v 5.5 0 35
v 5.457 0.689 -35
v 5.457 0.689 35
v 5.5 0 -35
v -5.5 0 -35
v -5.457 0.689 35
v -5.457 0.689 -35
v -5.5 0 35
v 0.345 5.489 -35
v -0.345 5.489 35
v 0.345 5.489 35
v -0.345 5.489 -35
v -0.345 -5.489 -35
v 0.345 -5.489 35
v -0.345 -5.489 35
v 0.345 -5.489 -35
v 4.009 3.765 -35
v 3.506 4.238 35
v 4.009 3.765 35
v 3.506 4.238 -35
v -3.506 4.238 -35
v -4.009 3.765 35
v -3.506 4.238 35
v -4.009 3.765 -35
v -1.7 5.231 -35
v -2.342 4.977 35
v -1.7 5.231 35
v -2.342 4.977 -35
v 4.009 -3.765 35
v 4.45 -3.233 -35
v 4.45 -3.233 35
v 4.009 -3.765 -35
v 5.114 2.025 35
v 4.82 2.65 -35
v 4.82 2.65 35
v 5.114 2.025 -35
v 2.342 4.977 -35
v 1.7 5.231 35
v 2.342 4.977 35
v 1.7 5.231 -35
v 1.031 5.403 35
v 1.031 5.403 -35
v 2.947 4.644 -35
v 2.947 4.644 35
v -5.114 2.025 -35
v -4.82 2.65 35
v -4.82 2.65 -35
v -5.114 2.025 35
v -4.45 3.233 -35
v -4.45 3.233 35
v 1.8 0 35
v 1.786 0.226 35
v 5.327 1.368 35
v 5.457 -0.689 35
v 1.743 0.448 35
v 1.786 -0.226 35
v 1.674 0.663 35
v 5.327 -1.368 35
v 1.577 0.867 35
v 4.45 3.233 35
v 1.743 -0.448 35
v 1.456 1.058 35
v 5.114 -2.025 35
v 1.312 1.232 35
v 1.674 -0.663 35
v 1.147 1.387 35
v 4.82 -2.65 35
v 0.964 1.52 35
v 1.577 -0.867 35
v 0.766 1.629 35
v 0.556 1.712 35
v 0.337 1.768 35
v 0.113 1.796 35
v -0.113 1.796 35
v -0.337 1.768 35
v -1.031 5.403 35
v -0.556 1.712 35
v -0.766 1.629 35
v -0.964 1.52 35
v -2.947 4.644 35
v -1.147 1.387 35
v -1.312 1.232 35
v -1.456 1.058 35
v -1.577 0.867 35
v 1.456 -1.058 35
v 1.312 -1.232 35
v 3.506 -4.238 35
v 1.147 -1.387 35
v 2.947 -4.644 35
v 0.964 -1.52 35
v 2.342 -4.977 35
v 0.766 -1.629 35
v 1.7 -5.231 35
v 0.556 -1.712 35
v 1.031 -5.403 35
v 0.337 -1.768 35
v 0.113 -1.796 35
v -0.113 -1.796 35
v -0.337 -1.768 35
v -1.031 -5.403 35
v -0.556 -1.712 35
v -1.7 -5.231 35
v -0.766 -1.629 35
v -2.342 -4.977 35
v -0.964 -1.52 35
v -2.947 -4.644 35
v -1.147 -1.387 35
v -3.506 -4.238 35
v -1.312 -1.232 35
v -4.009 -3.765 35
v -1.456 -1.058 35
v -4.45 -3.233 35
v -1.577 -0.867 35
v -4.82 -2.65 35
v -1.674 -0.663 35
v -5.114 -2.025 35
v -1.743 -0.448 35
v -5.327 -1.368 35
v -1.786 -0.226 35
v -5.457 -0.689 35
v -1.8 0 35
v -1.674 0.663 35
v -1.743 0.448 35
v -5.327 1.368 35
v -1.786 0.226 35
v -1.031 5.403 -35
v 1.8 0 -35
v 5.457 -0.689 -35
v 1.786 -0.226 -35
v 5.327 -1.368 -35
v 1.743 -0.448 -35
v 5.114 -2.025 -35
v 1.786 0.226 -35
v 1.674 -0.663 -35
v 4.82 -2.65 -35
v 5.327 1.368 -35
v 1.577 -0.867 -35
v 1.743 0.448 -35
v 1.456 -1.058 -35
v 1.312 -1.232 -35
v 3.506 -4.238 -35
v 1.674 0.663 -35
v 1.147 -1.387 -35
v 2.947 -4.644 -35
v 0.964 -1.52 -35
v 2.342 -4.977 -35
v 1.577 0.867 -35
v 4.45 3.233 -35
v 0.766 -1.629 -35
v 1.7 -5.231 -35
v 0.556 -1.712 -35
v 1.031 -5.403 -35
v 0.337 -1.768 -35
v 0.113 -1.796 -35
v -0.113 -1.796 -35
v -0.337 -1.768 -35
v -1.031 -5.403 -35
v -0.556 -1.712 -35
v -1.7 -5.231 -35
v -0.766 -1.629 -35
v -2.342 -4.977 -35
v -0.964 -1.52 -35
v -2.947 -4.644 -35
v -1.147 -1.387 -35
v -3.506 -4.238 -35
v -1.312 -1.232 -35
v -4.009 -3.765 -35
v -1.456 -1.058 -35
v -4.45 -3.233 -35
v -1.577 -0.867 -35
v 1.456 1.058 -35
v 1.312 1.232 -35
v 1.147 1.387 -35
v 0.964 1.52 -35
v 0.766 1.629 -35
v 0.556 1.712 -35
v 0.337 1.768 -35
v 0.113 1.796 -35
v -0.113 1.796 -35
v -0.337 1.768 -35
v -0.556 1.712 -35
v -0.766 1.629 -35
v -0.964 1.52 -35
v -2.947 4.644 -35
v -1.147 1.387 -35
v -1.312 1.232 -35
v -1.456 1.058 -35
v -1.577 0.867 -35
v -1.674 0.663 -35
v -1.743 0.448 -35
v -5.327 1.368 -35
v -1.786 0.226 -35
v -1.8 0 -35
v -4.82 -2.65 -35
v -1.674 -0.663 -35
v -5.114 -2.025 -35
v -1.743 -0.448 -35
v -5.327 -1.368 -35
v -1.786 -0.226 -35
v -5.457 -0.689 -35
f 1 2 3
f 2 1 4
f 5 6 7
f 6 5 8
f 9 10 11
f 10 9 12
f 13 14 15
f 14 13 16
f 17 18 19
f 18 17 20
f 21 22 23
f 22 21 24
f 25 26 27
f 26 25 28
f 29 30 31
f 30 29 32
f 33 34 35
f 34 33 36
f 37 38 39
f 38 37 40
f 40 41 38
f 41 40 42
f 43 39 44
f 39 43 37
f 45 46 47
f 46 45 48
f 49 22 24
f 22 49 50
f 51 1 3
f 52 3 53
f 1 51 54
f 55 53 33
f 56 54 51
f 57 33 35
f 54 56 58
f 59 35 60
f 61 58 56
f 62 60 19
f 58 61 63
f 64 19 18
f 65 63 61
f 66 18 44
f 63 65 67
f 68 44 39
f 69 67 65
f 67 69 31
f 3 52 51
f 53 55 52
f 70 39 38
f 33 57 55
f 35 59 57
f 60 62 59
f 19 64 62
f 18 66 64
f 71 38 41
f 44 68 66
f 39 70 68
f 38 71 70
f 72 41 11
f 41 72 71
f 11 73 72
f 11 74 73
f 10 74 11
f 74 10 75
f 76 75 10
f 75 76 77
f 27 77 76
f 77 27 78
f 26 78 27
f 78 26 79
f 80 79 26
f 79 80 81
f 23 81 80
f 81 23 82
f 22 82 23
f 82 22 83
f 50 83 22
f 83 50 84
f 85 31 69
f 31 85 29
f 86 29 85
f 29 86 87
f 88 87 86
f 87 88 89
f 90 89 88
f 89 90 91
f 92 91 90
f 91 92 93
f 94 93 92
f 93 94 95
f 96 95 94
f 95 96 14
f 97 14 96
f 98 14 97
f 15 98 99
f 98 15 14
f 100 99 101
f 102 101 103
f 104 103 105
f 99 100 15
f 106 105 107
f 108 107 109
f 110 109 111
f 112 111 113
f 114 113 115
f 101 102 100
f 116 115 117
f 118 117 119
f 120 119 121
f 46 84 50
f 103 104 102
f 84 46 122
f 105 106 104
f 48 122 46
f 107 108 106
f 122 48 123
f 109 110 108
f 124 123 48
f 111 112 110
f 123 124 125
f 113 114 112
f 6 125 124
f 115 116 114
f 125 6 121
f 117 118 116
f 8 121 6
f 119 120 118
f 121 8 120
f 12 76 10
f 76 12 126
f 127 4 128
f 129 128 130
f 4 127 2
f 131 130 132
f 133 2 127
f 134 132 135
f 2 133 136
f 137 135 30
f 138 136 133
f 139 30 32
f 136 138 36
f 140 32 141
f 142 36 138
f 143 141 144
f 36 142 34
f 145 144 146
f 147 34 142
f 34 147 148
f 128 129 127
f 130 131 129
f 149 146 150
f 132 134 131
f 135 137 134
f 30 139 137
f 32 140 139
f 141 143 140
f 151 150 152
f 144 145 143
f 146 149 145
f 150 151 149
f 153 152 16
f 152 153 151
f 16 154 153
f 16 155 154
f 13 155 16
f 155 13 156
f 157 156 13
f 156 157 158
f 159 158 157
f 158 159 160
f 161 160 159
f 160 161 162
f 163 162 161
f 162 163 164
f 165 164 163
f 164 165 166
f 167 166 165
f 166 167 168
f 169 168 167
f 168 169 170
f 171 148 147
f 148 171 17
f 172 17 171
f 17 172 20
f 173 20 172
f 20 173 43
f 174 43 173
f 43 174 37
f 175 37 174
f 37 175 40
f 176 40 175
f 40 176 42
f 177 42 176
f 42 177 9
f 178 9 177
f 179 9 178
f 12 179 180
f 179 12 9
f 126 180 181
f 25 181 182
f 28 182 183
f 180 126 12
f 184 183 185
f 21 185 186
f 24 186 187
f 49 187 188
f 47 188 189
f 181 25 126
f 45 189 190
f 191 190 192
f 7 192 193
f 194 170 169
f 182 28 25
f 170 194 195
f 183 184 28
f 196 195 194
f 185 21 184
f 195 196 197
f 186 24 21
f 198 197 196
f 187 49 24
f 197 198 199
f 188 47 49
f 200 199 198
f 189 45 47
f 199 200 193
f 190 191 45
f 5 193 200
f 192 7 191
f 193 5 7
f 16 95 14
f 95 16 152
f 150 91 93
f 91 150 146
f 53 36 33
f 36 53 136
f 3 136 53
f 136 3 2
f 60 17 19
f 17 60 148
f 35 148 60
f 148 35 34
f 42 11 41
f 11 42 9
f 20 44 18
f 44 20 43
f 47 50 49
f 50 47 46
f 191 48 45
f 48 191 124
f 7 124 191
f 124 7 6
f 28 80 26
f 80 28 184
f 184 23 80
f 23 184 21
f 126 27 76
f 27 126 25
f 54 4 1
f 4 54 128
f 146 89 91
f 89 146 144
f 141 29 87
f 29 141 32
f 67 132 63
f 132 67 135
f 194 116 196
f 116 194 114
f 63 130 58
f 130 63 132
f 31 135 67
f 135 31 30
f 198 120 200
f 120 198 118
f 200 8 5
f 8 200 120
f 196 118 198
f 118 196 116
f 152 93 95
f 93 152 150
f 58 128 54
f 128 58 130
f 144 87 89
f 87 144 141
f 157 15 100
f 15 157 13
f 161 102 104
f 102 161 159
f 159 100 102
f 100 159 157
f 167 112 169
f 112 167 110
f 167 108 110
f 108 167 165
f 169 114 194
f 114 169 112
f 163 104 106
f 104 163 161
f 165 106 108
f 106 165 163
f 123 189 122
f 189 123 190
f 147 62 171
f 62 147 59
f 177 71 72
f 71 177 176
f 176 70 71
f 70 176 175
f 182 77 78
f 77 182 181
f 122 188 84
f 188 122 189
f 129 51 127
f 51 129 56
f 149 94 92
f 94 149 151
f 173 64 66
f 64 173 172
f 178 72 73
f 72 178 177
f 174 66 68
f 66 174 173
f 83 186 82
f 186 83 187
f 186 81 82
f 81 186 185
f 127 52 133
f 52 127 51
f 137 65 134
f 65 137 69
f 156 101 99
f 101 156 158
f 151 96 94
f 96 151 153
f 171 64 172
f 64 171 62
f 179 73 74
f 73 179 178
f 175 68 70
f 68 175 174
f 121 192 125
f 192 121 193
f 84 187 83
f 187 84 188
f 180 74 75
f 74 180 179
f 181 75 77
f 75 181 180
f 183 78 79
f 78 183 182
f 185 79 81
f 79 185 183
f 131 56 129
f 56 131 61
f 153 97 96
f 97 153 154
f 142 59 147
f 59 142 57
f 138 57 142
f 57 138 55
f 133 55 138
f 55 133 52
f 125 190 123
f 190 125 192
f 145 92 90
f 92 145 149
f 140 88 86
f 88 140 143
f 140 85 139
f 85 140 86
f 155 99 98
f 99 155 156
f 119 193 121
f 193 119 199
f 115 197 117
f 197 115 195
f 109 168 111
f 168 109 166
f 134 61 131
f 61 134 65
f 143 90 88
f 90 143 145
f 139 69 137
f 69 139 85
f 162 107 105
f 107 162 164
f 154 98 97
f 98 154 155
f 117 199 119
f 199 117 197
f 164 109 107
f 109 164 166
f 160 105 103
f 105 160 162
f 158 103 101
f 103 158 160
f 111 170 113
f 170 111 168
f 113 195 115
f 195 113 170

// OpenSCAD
$fn = 50;


difference() {
	union() {
		translate(v = [0, 0, -35.0000000000]) {
			cylinder(h = 70, r = 5.5000000000);
		}
	}
	union() {
		translate(v = [0, 0, -100.0000000000]) {
			cylinder(h = 200, r = 1.8000000000);
		}
	}
}
